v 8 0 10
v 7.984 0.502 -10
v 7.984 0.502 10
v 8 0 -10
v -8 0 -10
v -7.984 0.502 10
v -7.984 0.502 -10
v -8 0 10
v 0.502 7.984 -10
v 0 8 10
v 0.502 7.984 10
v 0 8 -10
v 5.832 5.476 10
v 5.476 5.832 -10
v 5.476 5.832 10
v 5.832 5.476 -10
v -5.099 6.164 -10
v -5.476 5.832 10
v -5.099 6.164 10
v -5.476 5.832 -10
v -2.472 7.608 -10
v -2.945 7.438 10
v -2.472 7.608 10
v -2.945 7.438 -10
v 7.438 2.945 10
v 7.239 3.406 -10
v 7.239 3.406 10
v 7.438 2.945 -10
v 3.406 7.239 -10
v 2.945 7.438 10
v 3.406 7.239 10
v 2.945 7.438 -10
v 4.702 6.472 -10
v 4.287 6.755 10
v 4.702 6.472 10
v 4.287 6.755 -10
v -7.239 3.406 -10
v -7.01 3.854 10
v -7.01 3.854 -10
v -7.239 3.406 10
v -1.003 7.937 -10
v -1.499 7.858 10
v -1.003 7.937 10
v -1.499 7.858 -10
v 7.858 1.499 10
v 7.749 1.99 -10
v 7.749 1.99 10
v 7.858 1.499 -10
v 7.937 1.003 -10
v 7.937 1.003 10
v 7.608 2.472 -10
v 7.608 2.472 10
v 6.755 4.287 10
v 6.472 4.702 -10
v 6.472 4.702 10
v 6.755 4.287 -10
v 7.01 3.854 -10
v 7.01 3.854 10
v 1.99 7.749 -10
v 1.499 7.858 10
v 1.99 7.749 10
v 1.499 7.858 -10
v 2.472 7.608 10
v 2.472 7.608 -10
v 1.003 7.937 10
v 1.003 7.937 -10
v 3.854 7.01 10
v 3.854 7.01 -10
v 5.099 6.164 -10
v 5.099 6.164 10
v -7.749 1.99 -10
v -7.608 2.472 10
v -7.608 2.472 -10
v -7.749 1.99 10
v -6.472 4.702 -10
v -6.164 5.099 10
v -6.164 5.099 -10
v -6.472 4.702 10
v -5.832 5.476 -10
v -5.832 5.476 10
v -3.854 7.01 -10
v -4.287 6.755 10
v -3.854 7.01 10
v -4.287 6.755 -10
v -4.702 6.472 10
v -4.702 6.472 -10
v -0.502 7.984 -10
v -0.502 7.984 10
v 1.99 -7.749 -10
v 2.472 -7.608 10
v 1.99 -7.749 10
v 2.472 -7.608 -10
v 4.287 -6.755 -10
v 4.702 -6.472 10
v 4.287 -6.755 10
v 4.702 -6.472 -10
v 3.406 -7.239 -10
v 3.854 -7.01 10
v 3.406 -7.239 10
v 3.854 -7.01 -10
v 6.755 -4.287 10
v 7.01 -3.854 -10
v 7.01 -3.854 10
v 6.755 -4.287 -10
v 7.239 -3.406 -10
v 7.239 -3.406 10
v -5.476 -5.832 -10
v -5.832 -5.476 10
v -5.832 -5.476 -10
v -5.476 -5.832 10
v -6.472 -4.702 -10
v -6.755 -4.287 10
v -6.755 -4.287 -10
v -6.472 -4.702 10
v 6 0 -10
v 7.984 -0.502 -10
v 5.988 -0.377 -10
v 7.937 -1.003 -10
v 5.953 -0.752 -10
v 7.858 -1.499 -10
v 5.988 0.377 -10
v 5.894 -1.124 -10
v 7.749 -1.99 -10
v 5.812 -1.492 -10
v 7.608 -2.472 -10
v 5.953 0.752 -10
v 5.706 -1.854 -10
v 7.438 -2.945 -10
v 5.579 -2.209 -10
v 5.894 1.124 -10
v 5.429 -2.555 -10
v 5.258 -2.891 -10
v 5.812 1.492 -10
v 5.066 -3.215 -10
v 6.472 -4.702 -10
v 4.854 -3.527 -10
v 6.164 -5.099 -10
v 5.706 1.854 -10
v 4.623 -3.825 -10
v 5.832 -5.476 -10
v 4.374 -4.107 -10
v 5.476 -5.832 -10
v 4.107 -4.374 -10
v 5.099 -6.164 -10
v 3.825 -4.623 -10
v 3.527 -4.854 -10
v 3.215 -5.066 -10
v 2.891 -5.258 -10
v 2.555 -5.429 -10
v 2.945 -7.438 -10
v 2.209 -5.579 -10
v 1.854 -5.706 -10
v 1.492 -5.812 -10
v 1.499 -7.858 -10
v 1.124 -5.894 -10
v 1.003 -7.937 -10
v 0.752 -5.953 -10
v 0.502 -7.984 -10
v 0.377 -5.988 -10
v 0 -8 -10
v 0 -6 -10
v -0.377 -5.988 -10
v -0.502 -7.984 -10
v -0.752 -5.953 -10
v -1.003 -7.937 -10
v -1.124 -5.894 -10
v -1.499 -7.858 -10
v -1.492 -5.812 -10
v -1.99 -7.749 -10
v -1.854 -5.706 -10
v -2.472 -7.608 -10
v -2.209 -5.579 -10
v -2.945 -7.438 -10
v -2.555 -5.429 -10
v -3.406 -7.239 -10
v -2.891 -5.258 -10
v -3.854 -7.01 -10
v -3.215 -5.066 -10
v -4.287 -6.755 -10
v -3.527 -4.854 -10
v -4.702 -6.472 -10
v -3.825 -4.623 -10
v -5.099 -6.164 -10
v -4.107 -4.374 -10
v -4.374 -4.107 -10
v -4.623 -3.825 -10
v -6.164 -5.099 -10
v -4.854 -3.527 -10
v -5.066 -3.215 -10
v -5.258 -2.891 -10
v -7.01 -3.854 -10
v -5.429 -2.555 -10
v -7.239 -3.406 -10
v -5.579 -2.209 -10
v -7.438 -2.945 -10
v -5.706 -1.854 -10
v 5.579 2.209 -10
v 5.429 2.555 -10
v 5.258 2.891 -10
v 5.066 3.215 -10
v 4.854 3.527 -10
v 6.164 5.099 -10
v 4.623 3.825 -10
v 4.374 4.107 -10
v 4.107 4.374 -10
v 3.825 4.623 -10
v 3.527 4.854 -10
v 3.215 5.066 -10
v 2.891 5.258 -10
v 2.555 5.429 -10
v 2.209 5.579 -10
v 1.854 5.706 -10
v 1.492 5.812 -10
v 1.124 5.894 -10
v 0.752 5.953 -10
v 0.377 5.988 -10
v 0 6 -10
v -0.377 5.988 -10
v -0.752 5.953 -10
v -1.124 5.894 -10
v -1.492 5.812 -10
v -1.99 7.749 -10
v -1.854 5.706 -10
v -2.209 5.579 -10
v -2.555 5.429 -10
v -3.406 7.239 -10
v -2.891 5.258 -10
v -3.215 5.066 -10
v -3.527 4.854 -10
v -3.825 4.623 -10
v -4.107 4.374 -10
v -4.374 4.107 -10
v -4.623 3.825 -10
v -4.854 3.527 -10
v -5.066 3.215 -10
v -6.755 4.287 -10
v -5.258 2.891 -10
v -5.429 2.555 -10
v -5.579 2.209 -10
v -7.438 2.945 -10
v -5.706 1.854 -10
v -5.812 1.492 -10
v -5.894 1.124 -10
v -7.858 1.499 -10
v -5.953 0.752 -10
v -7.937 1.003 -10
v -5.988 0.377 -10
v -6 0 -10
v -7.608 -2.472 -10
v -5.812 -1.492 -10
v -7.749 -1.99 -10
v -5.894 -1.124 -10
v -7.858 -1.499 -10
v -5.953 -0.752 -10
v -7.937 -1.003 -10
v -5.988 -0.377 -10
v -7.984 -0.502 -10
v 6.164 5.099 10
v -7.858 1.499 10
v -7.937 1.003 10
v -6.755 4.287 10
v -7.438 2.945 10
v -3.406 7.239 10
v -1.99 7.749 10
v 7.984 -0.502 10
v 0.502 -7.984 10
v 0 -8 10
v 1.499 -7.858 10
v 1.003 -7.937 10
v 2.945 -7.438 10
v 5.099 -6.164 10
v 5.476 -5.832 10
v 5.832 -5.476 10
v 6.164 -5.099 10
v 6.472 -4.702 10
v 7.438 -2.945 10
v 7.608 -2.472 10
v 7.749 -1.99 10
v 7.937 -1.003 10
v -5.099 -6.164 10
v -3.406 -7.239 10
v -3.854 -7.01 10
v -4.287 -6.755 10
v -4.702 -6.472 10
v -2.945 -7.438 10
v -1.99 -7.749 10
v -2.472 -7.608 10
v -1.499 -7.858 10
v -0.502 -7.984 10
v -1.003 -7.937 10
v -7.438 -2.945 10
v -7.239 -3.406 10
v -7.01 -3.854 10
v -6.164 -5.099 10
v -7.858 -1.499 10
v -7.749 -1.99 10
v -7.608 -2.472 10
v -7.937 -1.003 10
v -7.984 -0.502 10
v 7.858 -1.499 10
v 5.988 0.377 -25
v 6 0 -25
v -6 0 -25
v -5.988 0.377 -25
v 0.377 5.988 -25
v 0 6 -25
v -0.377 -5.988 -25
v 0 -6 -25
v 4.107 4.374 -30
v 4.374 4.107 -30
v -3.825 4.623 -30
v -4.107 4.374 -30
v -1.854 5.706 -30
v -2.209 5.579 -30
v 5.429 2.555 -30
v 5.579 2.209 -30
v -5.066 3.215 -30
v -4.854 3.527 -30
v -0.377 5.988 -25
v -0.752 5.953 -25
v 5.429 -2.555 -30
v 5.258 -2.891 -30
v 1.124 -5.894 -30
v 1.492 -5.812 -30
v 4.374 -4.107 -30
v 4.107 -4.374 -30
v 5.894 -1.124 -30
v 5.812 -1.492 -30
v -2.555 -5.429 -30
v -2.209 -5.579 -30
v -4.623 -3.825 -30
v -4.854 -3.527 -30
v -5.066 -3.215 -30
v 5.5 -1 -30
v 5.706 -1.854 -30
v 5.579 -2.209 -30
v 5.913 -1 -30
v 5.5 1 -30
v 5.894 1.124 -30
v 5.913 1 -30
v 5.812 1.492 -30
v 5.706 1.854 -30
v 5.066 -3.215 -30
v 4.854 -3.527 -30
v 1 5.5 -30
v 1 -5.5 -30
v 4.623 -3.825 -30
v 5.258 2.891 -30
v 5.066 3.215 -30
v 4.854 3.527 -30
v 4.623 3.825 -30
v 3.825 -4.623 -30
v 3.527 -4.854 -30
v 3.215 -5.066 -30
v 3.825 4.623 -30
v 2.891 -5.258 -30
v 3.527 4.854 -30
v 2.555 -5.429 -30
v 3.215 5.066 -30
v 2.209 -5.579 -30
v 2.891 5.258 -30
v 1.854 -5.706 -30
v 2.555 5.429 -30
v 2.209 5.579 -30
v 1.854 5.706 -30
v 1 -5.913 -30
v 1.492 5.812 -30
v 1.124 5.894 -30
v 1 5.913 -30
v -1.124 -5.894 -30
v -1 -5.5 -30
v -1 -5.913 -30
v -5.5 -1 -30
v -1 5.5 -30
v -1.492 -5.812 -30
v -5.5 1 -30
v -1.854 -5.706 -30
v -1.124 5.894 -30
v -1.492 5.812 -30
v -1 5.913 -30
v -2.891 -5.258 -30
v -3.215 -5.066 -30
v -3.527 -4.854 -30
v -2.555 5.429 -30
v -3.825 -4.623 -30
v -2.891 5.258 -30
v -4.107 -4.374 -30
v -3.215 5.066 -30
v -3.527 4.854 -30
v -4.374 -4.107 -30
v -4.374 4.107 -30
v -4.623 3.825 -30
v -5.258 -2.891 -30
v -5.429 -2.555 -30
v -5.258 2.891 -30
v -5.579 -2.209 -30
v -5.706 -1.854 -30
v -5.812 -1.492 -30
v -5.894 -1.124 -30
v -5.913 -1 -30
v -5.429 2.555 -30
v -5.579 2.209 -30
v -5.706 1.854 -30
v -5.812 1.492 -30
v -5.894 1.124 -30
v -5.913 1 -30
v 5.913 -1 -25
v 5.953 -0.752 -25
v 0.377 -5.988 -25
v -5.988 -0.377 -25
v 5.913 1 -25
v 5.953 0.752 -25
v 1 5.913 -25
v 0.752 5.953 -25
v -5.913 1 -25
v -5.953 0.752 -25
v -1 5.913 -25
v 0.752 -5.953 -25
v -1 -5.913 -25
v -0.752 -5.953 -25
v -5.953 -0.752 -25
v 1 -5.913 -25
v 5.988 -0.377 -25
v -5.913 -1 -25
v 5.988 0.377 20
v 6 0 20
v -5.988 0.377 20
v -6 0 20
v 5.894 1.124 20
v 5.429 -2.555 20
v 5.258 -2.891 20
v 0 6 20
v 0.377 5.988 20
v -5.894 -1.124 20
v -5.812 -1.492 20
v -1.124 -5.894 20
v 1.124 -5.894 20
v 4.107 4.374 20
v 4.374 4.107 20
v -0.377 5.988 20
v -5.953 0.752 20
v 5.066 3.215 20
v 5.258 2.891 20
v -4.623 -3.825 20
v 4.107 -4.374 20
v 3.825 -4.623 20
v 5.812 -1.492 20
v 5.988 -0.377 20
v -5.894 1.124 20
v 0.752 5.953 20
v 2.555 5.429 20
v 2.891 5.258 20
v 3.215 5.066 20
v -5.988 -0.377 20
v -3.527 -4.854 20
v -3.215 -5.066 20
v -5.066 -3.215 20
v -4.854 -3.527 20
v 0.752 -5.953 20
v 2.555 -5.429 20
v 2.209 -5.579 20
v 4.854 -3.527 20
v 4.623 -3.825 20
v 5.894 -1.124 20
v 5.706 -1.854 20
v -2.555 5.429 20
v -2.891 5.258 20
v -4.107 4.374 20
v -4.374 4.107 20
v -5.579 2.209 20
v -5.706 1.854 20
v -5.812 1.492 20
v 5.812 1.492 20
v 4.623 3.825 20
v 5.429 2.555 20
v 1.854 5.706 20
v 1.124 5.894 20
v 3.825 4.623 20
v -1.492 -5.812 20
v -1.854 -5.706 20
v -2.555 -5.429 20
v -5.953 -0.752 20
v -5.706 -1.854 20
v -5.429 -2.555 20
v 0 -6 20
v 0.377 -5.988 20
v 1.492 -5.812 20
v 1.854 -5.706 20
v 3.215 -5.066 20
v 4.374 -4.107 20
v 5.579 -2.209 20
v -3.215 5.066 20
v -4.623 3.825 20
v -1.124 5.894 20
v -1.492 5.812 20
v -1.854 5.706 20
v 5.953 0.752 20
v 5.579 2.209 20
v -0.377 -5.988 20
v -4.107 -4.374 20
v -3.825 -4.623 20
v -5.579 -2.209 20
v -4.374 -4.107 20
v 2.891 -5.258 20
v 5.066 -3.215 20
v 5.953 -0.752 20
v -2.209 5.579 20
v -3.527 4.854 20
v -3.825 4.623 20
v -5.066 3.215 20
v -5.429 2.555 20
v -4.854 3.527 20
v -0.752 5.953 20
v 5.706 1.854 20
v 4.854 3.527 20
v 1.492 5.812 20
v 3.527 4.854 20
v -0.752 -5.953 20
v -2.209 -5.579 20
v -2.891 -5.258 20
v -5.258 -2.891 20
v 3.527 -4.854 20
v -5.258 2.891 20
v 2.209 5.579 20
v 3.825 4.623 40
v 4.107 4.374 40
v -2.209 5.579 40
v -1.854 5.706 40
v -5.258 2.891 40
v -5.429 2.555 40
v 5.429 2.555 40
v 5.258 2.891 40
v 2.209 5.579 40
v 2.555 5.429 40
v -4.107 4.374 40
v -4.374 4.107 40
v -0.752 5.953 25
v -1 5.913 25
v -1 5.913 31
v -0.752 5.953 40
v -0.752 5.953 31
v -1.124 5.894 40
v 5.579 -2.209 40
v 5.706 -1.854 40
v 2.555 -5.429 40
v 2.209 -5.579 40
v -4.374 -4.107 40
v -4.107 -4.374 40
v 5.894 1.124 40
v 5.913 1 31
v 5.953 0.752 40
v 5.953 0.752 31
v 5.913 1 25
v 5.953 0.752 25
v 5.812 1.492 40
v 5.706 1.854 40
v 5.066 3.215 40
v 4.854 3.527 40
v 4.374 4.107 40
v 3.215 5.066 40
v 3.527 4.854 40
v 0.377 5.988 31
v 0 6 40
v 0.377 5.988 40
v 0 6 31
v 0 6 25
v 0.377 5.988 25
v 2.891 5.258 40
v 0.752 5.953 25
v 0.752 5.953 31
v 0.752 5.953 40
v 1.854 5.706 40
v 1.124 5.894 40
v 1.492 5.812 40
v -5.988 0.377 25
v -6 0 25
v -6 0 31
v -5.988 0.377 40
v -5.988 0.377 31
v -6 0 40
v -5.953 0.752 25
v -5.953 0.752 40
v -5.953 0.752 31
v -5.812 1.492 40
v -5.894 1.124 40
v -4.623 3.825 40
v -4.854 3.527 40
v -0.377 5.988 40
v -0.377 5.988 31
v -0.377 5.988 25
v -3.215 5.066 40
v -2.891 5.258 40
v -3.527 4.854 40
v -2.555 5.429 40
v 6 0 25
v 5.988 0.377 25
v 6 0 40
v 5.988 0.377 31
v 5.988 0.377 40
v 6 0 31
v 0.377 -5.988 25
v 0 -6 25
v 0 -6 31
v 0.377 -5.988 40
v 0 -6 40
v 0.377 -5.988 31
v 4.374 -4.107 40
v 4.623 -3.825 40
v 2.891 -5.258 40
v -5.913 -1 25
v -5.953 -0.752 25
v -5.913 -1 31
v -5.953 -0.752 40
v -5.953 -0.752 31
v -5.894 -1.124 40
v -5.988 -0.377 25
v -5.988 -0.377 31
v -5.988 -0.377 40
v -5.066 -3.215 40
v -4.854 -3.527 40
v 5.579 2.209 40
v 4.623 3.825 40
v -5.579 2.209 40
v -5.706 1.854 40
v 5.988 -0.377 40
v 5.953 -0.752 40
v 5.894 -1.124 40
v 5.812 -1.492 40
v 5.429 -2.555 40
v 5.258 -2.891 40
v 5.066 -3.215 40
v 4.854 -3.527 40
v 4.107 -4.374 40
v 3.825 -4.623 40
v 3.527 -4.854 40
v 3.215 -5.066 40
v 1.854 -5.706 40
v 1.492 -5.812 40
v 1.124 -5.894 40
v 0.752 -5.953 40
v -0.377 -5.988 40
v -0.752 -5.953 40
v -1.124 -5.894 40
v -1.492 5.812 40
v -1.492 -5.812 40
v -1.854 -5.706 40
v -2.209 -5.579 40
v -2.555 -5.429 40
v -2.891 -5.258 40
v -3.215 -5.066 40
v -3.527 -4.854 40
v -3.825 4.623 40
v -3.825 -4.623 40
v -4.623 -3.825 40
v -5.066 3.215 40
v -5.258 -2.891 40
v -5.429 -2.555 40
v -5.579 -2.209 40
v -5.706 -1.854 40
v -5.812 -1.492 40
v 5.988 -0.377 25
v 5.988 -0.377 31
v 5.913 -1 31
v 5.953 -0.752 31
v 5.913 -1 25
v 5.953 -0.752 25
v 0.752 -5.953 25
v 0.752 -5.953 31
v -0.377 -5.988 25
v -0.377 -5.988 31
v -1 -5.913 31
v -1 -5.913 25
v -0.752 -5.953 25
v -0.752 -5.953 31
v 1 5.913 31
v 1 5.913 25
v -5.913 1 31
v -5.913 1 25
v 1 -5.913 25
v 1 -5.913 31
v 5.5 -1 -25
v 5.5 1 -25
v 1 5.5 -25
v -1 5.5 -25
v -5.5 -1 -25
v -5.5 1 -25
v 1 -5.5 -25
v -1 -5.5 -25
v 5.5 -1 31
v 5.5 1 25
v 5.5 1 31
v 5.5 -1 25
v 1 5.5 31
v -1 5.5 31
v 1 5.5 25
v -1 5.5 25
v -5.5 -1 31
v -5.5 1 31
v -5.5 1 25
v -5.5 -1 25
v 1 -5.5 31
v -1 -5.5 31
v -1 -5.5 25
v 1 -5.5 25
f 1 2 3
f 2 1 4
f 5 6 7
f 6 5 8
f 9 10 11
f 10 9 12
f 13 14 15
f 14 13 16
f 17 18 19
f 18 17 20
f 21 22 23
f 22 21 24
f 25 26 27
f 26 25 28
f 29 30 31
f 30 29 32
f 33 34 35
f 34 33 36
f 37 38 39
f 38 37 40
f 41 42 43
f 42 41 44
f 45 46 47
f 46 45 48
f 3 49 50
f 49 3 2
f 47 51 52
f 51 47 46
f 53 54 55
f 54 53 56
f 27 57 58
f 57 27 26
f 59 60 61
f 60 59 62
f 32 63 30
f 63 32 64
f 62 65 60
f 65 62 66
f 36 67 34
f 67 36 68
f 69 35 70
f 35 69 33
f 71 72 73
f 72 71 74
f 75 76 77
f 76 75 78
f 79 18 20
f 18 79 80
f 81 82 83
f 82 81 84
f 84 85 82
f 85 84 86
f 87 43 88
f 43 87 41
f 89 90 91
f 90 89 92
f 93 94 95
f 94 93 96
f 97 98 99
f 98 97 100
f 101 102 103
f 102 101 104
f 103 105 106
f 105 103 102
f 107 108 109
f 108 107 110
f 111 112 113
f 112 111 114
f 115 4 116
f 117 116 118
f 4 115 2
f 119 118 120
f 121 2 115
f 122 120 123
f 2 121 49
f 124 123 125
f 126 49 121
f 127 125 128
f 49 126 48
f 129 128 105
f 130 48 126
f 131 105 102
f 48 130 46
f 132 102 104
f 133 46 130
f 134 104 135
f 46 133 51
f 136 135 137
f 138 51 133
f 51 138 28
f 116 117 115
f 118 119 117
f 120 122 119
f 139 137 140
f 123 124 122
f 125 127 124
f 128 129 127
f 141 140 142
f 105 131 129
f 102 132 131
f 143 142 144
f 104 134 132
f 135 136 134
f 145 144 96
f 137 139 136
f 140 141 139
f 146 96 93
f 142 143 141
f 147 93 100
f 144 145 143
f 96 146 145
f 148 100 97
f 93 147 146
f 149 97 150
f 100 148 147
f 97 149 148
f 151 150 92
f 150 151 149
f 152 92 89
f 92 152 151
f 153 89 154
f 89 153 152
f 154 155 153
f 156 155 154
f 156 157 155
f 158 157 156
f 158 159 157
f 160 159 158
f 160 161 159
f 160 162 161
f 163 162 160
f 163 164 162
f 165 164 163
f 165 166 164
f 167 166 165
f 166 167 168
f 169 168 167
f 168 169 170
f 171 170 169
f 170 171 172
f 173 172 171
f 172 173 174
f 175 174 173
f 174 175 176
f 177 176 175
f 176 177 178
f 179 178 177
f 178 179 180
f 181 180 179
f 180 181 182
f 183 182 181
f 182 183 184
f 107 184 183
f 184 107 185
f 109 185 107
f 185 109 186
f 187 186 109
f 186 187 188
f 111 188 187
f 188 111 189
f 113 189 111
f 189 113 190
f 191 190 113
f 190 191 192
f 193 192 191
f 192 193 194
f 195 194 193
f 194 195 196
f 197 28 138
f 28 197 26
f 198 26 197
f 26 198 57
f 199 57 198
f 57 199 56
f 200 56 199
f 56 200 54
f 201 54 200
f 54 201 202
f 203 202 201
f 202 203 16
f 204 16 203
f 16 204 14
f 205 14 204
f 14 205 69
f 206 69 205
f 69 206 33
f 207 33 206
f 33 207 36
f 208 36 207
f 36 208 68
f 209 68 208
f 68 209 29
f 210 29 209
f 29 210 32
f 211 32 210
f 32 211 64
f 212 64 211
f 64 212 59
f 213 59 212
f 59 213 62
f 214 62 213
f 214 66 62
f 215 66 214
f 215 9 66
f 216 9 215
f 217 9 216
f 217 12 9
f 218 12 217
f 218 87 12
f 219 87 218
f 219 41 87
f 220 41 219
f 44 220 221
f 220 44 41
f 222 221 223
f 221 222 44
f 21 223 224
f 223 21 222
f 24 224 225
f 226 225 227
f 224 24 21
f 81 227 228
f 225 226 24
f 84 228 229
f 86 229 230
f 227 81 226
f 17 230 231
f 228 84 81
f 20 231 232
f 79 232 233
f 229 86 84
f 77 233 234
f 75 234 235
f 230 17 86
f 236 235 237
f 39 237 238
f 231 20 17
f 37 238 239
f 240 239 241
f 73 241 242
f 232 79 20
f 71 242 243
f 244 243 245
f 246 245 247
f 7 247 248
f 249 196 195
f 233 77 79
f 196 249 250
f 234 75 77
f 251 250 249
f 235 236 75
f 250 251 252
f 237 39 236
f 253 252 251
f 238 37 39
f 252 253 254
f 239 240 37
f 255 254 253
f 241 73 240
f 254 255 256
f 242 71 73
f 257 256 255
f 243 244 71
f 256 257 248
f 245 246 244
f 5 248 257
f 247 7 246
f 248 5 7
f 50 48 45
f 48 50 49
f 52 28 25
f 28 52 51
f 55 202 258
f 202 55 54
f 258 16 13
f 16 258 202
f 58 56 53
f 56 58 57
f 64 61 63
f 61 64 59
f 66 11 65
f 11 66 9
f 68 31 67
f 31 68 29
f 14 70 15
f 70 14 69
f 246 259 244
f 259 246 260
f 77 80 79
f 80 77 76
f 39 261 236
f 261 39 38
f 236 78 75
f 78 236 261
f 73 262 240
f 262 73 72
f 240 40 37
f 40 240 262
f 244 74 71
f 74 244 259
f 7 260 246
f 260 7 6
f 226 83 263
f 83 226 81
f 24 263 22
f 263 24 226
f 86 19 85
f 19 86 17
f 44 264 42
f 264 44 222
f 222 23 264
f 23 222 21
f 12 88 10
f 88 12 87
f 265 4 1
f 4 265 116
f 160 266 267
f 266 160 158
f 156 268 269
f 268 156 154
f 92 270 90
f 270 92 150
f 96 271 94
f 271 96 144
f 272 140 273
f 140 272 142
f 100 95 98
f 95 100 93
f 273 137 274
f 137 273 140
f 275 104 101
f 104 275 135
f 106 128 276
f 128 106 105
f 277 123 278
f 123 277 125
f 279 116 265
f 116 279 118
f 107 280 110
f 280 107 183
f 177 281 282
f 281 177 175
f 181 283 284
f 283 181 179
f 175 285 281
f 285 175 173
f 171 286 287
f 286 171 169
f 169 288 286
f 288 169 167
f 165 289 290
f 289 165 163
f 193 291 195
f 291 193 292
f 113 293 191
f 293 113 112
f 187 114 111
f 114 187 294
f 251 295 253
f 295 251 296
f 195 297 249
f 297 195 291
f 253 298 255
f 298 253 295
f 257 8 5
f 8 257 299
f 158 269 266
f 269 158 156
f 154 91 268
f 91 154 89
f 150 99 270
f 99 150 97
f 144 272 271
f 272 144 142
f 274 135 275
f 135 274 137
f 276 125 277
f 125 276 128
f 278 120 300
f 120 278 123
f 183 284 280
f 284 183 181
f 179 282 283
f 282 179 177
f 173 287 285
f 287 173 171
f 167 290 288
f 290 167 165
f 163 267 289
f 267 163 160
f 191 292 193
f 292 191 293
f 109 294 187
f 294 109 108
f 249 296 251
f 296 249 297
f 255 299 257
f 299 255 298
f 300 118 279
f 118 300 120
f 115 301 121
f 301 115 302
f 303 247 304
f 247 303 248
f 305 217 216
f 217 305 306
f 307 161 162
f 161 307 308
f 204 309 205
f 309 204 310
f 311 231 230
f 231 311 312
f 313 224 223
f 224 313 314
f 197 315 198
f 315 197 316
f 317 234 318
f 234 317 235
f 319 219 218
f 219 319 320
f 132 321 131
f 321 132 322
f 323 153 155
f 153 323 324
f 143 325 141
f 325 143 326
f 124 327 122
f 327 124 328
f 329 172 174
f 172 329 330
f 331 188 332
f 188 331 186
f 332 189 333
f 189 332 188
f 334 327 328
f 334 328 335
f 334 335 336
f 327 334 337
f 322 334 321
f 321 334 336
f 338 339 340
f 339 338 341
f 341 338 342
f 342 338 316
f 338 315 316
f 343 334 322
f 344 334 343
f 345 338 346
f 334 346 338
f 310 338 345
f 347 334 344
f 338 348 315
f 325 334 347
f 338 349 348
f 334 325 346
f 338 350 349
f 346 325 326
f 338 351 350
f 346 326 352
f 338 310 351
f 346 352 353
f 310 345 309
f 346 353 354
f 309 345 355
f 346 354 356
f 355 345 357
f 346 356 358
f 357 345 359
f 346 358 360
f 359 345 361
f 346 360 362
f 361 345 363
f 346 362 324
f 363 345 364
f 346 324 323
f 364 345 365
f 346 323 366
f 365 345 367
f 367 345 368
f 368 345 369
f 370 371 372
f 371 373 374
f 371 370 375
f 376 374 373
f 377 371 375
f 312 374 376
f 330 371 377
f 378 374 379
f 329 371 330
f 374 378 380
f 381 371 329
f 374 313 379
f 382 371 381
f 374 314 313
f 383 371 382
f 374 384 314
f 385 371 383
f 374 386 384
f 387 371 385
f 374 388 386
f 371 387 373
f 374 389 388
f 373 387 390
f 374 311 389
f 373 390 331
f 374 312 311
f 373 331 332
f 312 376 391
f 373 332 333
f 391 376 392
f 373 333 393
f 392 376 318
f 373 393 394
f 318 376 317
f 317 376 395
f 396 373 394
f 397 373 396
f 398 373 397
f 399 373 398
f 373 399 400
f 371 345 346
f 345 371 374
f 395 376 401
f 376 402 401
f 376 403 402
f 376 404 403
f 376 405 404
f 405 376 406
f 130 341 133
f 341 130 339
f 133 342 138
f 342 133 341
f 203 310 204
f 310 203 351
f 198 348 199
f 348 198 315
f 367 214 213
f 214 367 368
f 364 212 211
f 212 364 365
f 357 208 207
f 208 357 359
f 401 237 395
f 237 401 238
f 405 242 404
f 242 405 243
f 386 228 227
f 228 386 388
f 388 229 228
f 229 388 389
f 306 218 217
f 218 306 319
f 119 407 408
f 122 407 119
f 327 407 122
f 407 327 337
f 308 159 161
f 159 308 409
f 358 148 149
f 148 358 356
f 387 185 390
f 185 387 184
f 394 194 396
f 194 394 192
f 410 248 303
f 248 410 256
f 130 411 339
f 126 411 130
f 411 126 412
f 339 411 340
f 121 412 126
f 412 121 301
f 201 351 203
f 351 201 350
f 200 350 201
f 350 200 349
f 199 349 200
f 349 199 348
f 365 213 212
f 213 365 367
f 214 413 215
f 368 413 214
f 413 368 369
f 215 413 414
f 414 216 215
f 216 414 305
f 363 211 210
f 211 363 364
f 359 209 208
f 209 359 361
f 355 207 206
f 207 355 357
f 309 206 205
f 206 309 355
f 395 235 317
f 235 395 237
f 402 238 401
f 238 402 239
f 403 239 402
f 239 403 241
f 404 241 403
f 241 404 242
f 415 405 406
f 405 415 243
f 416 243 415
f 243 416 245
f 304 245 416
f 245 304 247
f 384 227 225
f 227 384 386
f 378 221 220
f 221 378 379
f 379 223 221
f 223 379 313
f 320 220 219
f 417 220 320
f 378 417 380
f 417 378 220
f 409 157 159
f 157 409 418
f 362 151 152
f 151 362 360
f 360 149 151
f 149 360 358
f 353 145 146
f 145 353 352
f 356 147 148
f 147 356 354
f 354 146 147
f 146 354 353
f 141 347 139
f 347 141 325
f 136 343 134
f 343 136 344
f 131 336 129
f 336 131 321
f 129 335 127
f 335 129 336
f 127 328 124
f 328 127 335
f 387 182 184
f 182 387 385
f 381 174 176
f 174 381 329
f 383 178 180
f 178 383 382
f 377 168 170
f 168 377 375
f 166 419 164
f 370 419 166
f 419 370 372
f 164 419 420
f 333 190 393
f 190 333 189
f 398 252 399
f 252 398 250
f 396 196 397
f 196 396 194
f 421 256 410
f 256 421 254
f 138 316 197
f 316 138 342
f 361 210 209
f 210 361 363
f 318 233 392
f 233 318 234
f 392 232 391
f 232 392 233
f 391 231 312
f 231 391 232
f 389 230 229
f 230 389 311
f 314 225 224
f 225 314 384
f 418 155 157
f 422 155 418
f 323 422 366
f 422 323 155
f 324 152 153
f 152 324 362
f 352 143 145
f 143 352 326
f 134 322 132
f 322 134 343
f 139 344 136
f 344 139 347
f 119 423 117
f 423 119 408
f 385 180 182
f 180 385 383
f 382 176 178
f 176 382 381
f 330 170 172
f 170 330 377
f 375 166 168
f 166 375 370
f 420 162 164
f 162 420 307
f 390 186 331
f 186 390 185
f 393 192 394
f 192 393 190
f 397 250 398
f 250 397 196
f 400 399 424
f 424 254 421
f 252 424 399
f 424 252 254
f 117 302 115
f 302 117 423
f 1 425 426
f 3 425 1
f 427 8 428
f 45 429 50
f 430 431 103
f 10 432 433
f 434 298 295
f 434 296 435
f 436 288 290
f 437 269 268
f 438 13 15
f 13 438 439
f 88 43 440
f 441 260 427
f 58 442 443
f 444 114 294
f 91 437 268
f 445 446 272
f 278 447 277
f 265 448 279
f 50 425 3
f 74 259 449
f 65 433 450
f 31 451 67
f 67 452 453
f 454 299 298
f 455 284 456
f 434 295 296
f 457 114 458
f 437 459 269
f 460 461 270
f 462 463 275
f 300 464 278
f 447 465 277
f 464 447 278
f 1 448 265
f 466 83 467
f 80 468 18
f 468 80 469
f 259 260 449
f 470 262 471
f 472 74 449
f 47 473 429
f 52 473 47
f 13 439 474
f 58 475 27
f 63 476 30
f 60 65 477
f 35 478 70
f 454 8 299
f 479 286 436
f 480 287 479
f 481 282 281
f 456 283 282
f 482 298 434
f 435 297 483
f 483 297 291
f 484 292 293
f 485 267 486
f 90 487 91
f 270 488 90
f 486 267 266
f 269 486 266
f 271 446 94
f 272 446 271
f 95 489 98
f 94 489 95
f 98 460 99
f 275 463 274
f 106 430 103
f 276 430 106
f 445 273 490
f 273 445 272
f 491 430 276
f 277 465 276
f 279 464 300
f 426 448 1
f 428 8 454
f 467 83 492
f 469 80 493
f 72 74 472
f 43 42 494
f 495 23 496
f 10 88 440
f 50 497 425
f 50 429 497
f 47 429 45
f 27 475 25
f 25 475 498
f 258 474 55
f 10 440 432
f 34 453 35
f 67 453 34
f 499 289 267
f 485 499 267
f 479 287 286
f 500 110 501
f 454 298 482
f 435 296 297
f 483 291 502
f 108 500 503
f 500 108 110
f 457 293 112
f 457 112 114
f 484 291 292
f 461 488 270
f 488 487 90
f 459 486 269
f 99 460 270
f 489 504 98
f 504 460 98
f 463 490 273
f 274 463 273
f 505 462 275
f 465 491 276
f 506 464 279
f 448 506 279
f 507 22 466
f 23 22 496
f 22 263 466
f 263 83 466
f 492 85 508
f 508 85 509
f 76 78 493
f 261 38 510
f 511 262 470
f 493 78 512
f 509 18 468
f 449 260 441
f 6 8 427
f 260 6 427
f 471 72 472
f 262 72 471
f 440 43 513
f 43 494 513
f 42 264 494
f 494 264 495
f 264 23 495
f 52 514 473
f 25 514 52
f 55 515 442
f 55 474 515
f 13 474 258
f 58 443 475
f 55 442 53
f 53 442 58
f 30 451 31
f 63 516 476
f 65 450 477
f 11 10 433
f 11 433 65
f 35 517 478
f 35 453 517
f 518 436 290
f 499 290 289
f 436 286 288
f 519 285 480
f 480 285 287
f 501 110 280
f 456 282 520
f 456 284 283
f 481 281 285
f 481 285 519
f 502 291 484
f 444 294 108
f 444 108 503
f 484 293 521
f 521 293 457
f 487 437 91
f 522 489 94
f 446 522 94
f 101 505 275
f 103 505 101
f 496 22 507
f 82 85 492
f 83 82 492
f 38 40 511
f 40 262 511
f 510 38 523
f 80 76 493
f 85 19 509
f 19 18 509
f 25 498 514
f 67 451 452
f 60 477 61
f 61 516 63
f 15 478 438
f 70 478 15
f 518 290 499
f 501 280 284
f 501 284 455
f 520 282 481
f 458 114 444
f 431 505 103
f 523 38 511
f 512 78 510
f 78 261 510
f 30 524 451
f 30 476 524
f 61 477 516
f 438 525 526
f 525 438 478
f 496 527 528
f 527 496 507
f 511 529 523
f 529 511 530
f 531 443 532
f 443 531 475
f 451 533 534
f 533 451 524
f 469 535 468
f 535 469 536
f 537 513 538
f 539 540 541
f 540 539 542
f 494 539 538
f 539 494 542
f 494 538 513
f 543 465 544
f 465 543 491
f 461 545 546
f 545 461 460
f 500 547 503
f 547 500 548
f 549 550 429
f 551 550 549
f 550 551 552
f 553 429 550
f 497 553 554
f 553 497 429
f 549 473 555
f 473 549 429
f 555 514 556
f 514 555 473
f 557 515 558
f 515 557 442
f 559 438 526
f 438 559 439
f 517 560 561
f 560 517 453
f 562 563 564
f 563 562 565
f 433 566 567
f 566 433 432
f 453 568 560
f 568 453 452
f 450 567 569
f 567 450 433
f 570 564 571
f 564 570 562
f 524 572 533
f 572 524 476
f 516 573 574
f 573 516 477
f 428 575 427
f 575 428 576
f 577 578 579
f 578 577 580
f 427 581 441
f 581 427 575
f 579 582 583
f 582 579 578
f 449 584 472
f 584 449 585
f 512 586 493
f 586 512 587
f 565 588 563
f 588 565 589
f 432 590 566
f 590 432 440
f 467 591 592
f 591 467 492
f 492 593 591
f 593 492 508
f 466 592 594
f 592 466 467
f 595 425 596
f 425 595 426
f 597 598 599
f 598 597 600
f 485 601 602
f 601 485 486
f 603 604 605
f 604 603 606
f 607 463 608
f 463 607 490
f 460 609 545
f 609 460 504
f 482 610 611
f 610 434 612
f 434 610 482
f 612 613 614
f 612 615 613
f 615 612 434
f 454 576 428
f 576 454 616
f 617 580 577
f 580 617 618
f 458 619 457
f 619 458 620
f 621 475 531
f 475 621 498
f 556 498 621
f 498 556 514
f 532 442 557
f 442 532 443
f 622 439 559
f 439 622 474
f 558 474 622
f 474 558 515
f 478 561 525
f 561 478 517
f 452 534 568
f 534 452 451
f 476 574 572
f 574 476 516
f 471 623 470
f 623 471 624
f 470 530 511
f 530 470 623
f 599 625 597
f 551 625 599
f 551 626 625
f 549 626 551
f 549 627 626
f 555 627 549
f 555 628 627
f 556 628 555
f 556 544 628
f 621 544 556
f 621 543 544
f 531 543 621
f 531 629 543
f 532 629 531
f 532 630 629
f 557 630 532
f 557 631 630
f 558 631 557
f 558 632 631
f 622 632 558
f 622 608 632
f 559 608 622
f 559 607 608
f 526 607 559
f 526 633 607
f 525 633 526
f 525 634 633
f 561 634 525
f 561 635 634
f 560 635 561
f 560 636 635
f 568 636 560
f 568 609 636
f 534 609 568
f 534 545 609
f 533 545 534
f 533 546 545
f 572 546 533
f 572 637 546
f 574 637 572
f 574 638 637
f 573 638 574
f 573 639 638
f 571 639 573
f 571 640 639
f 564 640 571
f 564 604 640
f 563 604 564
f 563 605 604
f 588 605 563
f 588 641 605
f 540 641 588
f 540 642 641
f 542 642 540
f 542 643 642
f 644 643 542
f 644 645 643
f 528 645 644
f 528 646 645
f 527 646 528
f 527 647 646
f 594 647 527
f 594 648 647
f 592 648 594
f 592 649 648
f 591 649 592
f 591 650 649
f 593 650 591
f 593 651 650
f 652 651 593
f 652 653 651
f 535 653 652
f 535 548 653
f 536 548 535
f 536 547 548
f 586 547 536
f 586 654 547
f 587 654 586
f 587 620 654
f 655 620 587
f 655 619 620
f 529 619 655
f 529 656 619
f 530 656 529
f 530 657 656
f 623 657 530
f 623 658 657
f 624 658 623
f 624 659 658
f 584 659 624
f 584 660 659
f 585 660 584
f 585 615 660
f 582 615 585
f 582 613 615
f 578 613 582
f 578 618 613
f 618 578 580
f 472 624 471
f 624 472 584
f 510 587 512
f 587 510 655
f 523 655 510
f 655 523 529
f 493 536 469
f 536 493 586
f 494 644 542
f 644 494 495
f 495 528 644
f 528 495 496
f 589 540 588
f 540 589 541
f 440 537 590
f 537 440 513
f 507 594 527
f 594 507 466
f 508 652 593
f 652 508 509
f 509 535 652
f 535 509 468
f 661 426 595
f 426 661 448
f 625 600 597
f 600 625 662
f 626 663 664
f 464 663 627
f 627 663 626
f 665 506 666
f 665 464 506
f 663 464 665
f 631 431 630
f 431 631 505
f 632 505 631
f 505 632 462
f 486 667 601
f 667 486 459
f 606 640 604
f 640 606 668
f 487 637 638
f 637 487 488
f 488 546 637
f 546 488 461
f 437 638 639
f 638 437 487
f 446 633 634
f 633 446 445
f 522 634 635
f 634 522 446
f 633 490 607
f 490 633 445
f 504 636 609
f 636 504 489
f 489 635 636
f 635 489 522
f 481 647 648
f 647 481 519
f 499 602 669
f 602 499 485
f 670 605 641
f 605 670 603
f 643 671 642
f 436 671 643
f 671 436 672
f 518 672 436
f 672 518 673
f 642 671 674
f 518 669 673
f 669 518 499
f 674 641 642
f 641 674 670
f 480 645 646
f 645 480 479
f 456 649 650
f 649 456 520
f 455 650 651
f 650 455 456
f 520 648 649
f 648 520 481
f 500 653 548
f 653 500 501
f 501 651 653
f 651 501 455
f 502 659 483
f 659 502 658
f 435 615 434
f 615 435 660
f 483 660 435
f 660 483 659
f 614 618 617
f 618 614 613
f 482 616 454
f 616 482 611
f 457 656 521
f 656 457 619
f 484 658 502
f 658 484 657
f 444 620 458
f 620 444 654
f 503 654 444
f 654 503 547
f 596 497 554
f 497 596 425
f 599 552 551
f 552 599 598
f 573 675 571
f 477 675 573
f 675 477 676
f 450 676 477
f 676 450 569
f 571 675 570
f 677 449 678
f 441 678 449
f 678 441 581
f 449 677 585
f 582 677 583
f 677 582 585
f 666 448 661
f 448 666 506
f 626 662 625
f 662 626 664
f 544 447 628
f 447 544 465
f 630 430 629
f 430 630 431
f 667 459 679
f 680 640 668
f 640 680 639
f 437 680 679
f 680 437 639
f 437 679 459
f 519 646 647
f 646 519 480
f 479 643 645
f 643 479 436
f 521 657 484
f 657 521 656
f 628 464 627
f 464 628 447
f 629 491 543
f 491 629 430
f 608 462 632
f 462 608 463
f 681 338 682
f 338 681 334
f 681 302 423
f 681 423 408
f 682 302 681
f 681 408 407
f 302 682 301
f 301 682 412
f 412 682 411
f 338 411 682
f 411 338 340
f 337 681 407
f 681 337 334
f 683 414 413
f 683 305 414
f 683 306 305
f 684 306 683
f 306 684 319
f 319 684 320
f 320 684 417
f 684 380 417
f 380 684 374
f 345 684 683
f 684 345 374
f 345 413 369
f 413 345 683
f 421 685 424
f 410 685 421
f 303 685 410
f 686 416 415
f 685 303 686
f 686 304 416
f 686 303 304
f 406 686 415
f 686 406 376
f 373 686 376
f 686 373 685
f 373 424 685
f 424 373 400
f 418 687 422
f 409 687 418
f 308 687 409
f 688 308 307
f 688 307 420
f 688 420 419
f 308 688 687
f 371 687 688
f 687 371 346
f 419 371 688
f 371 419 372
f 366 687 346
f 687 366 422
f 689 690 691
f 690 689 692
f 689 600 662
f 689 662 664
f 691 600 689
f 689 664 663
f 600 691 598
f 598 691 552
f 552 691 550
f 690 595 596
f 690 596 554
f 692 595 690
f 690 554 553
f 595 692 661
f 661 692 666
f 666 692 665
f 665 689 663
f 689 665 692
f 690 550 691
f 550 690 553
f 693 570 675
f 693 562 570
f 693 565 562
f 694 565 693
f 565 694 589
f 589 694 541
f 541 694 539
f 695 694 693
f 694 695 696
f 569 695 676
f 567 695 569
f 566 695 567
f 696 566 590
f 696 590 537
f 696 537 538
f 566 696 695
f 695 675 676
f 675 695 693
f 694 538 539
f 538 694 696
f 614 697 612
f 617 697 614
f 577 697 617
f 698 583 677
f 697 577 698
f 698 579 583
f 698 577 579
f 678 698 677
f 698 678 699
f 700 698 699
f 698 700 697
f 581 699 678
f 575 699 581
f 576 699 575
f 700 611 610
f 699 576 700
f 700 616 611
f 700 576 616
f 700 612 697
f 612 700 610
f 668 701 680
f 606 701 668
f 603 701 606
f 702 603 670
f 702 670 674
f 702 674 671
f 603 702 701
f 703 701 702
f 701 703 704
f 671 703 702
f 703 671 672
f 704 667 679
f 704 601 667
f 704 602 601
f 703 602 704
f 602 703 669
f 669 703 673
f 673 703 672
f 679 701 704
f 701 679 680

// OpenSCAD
$fn = 100; // Smoothness

module shaft_body() {
    difference() {
        union() {
            // Central wider section
            cylinder(h = 20, r = 8, center = true);

            // Left stepped section
            translate([0, 0, -30])
                cylinder(h = 20, r = 6, center = false);
            translate([0, 0, -10])
                cylinder(h = 10, r1 = 6, r2 = 8, center = false);

            // Right stepped section
            translate([0, 0, 10])
                cylinder(h = 10, r1 = 8, r2 = 6, center = false);
            translate([0, 0, 20])
                cylinder(h = 20, r = 6, center = false);
        }

        // Through-holes near both ends
        for (z = [-25, 25]) {
            rotate([90, 0, 0])
                translate([z, 0, 0])
                    cylinder(h = 12, r = 1.2, center = true);
        }

        // Grooves on both ends
        for (z = [-28, 28]) {
            for (angle = [0, 90, 180, 270]) {
                rotate([0, 0, angle])
                    translate([6, 0, z])
                        cube([1, 2, 6], center = true);
            }
        }
    }
}

shaft_body();
